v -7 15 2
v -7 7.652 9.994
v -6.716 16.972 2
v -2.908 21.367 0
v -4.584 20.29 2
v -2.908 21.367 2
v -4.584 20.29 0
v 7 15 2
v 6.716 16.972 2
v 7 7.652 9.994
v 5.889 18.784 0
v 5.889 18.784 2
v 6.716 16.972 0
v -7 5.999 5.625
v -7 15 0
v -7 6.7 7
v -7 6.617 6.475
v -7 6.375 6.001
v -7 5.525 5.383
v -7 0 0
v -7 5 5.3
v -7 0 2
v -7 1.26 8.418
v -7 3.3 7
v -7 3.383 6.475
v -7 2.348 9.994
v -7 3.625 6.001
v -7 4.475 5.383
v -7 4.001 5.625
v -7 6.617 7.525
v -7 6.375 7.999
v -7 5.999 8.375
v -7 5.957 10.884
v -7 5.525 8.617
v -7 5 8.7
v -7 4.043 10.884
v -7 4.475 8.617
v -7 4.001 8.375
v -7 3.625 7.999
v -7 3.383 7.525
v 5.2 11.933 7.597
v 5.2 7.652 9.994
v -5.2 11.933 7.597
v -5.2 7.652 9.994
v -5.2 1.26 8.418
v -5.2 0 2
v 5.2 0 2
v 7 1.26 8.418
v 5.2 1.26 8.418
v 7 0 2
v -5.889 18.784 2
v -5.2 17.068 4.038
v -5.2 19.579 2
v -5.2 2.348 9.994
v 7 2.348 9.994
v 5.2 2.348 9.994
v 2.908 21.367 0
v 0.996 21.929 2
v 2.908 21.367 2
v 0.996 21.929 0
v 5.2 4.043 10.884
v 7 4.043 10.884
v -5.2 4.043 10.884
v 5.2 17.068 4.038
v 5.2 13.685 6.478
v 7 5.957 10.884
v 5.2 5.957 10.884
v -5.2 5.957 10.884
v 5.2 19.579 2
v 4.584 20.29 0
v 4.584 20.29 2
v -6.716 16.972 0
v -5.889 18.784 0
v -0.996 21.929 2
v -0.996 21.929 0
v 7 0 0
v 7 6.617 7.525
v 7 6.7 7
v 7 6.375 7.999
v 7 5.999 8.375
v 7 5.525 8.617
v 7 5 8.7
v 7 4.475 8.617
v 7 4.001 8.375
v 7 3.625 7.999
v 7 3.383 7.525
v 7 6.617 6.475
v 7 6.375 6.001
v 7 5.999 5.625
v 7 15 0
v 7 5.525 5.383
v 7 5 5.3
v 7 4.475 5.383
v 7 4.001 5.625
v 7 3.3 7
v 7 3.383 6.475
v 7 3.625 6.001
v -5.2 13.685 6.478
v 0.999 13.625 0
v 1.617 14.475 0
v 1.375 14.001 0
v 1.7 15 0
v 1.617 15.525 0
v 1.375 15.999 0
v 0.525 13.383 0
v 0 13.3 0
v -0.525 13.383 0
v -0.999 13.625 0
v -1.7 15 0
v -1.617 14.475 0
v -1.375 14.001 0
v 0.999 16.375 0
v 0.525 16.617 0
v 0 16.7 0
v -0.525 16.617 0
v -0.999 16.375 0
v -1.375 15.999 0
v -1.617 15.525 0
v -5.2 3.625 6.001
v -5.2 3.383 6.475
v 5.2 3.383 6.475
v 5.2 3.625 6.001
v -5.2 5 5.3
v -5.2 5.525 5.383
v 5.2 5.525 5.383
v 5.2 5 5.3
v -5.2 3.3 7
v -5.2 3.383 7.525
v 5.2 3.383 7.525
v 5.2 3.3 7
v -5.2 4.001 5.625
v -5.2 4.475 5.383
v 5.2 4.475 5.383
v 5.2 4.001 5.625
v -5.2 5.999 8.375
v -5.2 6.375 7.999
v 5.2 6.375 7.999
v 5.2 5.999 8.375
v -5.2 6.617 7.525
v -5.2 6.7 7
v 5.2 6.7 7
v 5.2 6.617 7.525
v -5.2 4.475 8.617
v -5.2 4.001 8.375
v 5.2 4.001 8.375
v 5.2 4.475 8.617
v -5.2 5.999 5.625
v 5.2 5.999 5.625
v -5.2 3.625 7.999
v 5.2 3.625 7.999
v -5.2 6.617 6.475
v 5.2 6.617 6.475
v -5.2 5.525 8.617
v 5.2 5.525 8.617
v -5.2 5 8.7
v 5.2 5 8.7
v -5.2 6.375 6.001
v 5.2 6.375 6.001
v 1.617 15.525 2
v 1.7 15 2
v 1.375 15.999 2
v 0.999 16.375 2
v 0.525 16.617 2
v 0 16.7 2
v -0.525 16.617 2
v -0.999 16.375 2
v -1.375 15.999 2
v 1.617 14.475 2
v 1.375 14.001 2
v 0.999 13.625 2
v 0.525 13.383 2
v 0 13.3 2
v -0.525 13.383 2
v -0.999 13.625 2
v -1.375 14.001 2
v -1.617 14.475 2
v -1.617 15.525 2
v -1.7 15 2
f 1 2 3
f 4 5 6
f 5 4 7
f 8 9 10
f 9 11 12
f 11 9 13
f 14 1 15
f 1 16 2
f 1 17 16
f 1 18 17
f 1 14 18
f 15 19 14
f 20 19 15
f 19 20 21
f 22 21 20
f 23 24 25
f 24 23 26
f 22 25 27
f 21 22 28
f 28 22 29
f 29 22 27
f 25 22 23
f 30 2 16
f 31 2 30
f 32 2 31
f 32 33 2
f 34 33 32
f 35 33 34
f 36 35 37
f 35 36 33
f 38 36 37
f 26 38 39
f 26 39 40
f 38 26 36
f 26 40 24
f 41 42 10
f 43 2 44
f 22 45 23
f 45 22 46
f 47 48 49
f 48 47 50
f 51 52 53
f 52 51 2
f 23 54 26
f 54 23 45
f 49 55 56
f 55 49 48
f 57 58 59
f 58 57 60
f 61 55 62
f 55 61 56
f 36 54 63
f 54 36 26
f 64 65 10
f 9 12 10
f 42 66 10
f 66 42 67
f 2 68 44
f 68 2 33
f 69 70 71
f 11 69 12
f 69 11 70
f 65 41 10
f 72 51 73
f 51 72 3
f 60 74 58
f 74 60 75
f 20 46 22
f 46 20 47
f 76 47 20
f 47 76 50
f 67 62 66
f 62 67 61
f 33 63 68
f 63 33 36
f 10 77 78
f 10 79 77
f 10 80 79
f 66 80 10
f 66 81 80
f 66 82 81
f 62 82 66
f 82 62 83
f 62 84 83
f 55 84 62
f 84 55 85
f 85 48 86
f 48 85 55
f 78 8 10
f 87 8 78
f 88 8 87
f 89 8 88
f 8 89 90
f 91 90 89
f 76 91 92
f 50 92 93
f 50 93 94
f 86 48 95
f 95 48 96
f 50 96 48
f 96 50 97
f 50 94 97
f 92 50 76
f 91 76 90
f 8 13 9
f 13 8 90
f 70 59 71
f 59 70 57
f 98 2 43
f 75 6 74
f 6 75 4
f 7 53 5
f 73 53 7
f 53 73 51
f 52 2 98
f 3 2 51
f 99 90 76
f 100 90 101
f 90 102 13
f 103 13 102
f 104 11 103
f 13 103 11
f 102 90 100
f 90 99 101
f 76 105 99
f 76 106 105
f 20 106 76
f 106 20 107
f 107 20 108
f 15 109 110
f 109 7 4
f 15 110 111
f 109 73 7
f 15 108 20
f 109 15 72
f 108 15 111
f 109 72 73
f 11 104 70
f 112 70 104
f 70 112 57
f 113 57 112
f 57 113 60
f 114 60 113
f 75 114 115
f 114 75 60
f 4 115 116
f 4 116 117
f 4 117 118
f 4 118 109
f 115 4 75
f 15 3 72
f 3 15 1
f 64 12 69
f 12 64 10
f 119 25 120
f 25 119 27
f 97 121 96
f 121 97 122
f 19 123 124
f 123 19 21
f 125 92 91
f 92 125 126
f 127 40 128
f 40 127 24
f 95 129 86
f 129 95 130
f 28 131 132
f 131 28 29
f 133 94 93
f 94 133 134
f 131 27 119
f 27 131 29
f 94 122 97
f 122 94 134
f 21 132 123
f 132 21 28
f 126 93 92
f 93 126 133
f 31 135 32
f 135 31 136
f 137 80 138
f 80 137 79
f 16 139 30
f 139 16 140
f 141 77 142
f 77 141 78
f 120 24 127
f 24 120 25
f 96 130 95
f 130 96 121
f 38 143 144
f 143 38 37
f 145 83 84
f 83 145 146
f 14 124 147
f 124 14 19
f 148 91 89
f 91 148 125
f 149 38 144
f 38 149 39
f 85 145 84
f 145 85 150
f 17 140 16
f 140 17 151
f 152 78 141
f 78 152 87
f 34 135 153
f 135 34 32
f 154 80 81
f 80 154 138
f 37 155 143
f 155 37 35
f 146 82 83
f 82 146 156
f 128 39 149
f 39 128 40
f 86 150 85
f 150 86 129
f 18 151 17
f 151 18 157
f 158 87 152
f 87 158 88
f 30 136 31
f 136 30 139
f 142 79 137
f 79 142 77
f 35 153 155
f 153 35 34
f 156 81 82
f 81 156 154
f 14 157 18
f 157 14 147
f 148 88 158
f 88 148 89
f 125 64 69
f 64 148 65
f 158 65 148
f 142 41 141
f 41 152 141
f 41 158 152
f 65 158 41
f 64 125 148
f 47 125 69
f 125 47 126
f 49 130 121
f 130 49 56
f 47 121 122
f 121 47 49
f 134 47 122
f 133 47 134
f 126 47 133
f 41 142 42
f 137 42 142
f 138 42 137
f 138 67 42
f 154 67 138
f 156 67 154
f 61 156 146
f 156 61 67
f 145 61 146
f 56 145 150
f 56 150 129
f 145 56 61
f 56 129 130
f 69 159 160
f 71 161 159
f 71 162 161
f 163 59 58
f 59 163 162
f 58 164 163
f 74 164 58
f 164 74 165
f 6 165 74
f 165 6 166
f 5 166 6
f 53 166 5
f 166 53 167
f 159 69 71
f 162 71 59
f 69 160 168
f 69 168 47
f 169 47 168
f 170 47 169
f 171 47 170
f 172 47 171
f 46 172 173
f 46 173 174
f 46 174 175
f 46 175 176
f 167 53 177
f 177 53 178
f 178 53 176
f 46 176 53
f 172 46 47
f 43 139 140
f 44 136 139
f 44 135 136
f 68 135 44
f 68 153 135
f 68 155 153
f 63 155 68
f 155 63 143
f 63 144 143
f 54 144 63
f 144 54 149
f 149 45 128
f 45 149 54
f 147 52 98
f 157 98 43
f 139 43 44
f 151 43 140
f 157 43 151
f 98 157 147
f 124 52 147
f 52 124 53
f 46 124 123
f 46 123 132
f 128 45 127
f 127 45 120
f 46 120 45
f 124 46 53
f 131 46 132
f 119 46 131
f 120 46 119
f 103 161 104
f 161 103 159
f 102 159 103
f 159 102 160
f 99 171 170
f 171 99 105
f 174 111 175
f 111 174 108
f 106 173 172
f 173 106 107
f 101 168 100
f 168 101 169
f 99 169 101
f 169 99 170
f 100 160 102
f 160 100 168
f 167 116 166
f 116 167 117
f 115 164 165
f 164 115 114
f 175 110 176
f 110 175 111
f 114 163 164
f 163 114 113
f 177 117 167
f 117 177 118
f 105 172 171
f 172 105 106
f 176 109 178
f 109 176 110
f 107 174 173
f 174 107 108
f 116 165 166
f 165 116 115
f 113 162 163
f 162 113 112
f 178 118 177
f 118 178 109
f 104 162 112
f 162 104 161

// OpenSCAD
cam_hindge();

module cam_hindge() {
     difference() {
        union() {
            hull() {
                translate([-14/2,0,0]) cube([14,10,2]);
                translate([-7,5,7]) rotate([0,90,0]) cylinder(14,8/2,8/2);
                translate([0,15,0]) cylinder(2,7,7);
            }
        }
        translate([-10,5,7]) rotate([0,90,0]) cylinder(20,1.7,1.7,$fn=20);
        translate([-10.4/2,-2,2])cube([10.4,30,50]);
        translate([0,15,-2]) cylinder(10,1.7,1.7,$fn=20);
    }   
}

module cam_top() {
   difference() {
       linear_extrude(2) hull() {
            translate([16.5/2+3,0,0])circle(5);
            translate([-16.5/2-3,0,0])circle(5);
            translate([5,3.75,0]) circle(2);
            translate([-5,3.75,0]) circle(2);
            translate([16.5/2,-3,0]) circle(2);
            translate([-16.5/2,-3,0]) circle(2);
        }
        translate([16.5/2+2+1+1,0,-6]) cylinder(10,1.7,1.7,$fn=20);
        translate([-(16.5/2+2+1+1),0,-6]) cylinder(10,1.7,1.7,$fn=20);
        translate([-14/2,-2,-5]) cube([14,2,10]);
    }
    difference() {
        hull() {
            translate([-10/2,0,0]) cube([10,10,2]);
            translate([-5,5,6]) rotate([0,90,0]) cylinder(10,8/2,8/2);
        }
        translate([-6,5,6]) rotate([0,90,0]) cylinder(12,5/2,5/2);
    }
}


module cam_bottom() {
    difference() {
        linear_extrude(21+2) hull() {
            translate([16.5/2+3,0,0])circle(5);
            translate([-16.5/2-3,0,0])circle(5);
            translate([5,3.75,0]) circle(2);
            translate([-5,3.75,0]) circle(2);
            translate([16.5/2,-3,0]) circle(2);
            translate([-16.5/2,-3,0]) circle(2);
        }
        translate([-16.7/2,-2,2]) cube([16.7,20,24]);
        translate([-13/2,-4,5])cube([13,20,24]);
        translate([-7/2,-2-3.5-5,5+5])cube([7,20,24]);
        
        translate([5,3.75,-5]) cylinder(10, 1.7/2, 1.6/2, $fn=20);
        translate([-5,3.75,-5]) cylinder(10, 1.7/2, 1.6/2, $fn=20);
        
        #translate([16.5/2+2+1+1,0,21-6]) cylinder(10, 5/2, 5/2);
        #translate([-(16.5/2+2+1+1),0,21-6]) cylinder(10, 5/2, 5/2);
    }
}
